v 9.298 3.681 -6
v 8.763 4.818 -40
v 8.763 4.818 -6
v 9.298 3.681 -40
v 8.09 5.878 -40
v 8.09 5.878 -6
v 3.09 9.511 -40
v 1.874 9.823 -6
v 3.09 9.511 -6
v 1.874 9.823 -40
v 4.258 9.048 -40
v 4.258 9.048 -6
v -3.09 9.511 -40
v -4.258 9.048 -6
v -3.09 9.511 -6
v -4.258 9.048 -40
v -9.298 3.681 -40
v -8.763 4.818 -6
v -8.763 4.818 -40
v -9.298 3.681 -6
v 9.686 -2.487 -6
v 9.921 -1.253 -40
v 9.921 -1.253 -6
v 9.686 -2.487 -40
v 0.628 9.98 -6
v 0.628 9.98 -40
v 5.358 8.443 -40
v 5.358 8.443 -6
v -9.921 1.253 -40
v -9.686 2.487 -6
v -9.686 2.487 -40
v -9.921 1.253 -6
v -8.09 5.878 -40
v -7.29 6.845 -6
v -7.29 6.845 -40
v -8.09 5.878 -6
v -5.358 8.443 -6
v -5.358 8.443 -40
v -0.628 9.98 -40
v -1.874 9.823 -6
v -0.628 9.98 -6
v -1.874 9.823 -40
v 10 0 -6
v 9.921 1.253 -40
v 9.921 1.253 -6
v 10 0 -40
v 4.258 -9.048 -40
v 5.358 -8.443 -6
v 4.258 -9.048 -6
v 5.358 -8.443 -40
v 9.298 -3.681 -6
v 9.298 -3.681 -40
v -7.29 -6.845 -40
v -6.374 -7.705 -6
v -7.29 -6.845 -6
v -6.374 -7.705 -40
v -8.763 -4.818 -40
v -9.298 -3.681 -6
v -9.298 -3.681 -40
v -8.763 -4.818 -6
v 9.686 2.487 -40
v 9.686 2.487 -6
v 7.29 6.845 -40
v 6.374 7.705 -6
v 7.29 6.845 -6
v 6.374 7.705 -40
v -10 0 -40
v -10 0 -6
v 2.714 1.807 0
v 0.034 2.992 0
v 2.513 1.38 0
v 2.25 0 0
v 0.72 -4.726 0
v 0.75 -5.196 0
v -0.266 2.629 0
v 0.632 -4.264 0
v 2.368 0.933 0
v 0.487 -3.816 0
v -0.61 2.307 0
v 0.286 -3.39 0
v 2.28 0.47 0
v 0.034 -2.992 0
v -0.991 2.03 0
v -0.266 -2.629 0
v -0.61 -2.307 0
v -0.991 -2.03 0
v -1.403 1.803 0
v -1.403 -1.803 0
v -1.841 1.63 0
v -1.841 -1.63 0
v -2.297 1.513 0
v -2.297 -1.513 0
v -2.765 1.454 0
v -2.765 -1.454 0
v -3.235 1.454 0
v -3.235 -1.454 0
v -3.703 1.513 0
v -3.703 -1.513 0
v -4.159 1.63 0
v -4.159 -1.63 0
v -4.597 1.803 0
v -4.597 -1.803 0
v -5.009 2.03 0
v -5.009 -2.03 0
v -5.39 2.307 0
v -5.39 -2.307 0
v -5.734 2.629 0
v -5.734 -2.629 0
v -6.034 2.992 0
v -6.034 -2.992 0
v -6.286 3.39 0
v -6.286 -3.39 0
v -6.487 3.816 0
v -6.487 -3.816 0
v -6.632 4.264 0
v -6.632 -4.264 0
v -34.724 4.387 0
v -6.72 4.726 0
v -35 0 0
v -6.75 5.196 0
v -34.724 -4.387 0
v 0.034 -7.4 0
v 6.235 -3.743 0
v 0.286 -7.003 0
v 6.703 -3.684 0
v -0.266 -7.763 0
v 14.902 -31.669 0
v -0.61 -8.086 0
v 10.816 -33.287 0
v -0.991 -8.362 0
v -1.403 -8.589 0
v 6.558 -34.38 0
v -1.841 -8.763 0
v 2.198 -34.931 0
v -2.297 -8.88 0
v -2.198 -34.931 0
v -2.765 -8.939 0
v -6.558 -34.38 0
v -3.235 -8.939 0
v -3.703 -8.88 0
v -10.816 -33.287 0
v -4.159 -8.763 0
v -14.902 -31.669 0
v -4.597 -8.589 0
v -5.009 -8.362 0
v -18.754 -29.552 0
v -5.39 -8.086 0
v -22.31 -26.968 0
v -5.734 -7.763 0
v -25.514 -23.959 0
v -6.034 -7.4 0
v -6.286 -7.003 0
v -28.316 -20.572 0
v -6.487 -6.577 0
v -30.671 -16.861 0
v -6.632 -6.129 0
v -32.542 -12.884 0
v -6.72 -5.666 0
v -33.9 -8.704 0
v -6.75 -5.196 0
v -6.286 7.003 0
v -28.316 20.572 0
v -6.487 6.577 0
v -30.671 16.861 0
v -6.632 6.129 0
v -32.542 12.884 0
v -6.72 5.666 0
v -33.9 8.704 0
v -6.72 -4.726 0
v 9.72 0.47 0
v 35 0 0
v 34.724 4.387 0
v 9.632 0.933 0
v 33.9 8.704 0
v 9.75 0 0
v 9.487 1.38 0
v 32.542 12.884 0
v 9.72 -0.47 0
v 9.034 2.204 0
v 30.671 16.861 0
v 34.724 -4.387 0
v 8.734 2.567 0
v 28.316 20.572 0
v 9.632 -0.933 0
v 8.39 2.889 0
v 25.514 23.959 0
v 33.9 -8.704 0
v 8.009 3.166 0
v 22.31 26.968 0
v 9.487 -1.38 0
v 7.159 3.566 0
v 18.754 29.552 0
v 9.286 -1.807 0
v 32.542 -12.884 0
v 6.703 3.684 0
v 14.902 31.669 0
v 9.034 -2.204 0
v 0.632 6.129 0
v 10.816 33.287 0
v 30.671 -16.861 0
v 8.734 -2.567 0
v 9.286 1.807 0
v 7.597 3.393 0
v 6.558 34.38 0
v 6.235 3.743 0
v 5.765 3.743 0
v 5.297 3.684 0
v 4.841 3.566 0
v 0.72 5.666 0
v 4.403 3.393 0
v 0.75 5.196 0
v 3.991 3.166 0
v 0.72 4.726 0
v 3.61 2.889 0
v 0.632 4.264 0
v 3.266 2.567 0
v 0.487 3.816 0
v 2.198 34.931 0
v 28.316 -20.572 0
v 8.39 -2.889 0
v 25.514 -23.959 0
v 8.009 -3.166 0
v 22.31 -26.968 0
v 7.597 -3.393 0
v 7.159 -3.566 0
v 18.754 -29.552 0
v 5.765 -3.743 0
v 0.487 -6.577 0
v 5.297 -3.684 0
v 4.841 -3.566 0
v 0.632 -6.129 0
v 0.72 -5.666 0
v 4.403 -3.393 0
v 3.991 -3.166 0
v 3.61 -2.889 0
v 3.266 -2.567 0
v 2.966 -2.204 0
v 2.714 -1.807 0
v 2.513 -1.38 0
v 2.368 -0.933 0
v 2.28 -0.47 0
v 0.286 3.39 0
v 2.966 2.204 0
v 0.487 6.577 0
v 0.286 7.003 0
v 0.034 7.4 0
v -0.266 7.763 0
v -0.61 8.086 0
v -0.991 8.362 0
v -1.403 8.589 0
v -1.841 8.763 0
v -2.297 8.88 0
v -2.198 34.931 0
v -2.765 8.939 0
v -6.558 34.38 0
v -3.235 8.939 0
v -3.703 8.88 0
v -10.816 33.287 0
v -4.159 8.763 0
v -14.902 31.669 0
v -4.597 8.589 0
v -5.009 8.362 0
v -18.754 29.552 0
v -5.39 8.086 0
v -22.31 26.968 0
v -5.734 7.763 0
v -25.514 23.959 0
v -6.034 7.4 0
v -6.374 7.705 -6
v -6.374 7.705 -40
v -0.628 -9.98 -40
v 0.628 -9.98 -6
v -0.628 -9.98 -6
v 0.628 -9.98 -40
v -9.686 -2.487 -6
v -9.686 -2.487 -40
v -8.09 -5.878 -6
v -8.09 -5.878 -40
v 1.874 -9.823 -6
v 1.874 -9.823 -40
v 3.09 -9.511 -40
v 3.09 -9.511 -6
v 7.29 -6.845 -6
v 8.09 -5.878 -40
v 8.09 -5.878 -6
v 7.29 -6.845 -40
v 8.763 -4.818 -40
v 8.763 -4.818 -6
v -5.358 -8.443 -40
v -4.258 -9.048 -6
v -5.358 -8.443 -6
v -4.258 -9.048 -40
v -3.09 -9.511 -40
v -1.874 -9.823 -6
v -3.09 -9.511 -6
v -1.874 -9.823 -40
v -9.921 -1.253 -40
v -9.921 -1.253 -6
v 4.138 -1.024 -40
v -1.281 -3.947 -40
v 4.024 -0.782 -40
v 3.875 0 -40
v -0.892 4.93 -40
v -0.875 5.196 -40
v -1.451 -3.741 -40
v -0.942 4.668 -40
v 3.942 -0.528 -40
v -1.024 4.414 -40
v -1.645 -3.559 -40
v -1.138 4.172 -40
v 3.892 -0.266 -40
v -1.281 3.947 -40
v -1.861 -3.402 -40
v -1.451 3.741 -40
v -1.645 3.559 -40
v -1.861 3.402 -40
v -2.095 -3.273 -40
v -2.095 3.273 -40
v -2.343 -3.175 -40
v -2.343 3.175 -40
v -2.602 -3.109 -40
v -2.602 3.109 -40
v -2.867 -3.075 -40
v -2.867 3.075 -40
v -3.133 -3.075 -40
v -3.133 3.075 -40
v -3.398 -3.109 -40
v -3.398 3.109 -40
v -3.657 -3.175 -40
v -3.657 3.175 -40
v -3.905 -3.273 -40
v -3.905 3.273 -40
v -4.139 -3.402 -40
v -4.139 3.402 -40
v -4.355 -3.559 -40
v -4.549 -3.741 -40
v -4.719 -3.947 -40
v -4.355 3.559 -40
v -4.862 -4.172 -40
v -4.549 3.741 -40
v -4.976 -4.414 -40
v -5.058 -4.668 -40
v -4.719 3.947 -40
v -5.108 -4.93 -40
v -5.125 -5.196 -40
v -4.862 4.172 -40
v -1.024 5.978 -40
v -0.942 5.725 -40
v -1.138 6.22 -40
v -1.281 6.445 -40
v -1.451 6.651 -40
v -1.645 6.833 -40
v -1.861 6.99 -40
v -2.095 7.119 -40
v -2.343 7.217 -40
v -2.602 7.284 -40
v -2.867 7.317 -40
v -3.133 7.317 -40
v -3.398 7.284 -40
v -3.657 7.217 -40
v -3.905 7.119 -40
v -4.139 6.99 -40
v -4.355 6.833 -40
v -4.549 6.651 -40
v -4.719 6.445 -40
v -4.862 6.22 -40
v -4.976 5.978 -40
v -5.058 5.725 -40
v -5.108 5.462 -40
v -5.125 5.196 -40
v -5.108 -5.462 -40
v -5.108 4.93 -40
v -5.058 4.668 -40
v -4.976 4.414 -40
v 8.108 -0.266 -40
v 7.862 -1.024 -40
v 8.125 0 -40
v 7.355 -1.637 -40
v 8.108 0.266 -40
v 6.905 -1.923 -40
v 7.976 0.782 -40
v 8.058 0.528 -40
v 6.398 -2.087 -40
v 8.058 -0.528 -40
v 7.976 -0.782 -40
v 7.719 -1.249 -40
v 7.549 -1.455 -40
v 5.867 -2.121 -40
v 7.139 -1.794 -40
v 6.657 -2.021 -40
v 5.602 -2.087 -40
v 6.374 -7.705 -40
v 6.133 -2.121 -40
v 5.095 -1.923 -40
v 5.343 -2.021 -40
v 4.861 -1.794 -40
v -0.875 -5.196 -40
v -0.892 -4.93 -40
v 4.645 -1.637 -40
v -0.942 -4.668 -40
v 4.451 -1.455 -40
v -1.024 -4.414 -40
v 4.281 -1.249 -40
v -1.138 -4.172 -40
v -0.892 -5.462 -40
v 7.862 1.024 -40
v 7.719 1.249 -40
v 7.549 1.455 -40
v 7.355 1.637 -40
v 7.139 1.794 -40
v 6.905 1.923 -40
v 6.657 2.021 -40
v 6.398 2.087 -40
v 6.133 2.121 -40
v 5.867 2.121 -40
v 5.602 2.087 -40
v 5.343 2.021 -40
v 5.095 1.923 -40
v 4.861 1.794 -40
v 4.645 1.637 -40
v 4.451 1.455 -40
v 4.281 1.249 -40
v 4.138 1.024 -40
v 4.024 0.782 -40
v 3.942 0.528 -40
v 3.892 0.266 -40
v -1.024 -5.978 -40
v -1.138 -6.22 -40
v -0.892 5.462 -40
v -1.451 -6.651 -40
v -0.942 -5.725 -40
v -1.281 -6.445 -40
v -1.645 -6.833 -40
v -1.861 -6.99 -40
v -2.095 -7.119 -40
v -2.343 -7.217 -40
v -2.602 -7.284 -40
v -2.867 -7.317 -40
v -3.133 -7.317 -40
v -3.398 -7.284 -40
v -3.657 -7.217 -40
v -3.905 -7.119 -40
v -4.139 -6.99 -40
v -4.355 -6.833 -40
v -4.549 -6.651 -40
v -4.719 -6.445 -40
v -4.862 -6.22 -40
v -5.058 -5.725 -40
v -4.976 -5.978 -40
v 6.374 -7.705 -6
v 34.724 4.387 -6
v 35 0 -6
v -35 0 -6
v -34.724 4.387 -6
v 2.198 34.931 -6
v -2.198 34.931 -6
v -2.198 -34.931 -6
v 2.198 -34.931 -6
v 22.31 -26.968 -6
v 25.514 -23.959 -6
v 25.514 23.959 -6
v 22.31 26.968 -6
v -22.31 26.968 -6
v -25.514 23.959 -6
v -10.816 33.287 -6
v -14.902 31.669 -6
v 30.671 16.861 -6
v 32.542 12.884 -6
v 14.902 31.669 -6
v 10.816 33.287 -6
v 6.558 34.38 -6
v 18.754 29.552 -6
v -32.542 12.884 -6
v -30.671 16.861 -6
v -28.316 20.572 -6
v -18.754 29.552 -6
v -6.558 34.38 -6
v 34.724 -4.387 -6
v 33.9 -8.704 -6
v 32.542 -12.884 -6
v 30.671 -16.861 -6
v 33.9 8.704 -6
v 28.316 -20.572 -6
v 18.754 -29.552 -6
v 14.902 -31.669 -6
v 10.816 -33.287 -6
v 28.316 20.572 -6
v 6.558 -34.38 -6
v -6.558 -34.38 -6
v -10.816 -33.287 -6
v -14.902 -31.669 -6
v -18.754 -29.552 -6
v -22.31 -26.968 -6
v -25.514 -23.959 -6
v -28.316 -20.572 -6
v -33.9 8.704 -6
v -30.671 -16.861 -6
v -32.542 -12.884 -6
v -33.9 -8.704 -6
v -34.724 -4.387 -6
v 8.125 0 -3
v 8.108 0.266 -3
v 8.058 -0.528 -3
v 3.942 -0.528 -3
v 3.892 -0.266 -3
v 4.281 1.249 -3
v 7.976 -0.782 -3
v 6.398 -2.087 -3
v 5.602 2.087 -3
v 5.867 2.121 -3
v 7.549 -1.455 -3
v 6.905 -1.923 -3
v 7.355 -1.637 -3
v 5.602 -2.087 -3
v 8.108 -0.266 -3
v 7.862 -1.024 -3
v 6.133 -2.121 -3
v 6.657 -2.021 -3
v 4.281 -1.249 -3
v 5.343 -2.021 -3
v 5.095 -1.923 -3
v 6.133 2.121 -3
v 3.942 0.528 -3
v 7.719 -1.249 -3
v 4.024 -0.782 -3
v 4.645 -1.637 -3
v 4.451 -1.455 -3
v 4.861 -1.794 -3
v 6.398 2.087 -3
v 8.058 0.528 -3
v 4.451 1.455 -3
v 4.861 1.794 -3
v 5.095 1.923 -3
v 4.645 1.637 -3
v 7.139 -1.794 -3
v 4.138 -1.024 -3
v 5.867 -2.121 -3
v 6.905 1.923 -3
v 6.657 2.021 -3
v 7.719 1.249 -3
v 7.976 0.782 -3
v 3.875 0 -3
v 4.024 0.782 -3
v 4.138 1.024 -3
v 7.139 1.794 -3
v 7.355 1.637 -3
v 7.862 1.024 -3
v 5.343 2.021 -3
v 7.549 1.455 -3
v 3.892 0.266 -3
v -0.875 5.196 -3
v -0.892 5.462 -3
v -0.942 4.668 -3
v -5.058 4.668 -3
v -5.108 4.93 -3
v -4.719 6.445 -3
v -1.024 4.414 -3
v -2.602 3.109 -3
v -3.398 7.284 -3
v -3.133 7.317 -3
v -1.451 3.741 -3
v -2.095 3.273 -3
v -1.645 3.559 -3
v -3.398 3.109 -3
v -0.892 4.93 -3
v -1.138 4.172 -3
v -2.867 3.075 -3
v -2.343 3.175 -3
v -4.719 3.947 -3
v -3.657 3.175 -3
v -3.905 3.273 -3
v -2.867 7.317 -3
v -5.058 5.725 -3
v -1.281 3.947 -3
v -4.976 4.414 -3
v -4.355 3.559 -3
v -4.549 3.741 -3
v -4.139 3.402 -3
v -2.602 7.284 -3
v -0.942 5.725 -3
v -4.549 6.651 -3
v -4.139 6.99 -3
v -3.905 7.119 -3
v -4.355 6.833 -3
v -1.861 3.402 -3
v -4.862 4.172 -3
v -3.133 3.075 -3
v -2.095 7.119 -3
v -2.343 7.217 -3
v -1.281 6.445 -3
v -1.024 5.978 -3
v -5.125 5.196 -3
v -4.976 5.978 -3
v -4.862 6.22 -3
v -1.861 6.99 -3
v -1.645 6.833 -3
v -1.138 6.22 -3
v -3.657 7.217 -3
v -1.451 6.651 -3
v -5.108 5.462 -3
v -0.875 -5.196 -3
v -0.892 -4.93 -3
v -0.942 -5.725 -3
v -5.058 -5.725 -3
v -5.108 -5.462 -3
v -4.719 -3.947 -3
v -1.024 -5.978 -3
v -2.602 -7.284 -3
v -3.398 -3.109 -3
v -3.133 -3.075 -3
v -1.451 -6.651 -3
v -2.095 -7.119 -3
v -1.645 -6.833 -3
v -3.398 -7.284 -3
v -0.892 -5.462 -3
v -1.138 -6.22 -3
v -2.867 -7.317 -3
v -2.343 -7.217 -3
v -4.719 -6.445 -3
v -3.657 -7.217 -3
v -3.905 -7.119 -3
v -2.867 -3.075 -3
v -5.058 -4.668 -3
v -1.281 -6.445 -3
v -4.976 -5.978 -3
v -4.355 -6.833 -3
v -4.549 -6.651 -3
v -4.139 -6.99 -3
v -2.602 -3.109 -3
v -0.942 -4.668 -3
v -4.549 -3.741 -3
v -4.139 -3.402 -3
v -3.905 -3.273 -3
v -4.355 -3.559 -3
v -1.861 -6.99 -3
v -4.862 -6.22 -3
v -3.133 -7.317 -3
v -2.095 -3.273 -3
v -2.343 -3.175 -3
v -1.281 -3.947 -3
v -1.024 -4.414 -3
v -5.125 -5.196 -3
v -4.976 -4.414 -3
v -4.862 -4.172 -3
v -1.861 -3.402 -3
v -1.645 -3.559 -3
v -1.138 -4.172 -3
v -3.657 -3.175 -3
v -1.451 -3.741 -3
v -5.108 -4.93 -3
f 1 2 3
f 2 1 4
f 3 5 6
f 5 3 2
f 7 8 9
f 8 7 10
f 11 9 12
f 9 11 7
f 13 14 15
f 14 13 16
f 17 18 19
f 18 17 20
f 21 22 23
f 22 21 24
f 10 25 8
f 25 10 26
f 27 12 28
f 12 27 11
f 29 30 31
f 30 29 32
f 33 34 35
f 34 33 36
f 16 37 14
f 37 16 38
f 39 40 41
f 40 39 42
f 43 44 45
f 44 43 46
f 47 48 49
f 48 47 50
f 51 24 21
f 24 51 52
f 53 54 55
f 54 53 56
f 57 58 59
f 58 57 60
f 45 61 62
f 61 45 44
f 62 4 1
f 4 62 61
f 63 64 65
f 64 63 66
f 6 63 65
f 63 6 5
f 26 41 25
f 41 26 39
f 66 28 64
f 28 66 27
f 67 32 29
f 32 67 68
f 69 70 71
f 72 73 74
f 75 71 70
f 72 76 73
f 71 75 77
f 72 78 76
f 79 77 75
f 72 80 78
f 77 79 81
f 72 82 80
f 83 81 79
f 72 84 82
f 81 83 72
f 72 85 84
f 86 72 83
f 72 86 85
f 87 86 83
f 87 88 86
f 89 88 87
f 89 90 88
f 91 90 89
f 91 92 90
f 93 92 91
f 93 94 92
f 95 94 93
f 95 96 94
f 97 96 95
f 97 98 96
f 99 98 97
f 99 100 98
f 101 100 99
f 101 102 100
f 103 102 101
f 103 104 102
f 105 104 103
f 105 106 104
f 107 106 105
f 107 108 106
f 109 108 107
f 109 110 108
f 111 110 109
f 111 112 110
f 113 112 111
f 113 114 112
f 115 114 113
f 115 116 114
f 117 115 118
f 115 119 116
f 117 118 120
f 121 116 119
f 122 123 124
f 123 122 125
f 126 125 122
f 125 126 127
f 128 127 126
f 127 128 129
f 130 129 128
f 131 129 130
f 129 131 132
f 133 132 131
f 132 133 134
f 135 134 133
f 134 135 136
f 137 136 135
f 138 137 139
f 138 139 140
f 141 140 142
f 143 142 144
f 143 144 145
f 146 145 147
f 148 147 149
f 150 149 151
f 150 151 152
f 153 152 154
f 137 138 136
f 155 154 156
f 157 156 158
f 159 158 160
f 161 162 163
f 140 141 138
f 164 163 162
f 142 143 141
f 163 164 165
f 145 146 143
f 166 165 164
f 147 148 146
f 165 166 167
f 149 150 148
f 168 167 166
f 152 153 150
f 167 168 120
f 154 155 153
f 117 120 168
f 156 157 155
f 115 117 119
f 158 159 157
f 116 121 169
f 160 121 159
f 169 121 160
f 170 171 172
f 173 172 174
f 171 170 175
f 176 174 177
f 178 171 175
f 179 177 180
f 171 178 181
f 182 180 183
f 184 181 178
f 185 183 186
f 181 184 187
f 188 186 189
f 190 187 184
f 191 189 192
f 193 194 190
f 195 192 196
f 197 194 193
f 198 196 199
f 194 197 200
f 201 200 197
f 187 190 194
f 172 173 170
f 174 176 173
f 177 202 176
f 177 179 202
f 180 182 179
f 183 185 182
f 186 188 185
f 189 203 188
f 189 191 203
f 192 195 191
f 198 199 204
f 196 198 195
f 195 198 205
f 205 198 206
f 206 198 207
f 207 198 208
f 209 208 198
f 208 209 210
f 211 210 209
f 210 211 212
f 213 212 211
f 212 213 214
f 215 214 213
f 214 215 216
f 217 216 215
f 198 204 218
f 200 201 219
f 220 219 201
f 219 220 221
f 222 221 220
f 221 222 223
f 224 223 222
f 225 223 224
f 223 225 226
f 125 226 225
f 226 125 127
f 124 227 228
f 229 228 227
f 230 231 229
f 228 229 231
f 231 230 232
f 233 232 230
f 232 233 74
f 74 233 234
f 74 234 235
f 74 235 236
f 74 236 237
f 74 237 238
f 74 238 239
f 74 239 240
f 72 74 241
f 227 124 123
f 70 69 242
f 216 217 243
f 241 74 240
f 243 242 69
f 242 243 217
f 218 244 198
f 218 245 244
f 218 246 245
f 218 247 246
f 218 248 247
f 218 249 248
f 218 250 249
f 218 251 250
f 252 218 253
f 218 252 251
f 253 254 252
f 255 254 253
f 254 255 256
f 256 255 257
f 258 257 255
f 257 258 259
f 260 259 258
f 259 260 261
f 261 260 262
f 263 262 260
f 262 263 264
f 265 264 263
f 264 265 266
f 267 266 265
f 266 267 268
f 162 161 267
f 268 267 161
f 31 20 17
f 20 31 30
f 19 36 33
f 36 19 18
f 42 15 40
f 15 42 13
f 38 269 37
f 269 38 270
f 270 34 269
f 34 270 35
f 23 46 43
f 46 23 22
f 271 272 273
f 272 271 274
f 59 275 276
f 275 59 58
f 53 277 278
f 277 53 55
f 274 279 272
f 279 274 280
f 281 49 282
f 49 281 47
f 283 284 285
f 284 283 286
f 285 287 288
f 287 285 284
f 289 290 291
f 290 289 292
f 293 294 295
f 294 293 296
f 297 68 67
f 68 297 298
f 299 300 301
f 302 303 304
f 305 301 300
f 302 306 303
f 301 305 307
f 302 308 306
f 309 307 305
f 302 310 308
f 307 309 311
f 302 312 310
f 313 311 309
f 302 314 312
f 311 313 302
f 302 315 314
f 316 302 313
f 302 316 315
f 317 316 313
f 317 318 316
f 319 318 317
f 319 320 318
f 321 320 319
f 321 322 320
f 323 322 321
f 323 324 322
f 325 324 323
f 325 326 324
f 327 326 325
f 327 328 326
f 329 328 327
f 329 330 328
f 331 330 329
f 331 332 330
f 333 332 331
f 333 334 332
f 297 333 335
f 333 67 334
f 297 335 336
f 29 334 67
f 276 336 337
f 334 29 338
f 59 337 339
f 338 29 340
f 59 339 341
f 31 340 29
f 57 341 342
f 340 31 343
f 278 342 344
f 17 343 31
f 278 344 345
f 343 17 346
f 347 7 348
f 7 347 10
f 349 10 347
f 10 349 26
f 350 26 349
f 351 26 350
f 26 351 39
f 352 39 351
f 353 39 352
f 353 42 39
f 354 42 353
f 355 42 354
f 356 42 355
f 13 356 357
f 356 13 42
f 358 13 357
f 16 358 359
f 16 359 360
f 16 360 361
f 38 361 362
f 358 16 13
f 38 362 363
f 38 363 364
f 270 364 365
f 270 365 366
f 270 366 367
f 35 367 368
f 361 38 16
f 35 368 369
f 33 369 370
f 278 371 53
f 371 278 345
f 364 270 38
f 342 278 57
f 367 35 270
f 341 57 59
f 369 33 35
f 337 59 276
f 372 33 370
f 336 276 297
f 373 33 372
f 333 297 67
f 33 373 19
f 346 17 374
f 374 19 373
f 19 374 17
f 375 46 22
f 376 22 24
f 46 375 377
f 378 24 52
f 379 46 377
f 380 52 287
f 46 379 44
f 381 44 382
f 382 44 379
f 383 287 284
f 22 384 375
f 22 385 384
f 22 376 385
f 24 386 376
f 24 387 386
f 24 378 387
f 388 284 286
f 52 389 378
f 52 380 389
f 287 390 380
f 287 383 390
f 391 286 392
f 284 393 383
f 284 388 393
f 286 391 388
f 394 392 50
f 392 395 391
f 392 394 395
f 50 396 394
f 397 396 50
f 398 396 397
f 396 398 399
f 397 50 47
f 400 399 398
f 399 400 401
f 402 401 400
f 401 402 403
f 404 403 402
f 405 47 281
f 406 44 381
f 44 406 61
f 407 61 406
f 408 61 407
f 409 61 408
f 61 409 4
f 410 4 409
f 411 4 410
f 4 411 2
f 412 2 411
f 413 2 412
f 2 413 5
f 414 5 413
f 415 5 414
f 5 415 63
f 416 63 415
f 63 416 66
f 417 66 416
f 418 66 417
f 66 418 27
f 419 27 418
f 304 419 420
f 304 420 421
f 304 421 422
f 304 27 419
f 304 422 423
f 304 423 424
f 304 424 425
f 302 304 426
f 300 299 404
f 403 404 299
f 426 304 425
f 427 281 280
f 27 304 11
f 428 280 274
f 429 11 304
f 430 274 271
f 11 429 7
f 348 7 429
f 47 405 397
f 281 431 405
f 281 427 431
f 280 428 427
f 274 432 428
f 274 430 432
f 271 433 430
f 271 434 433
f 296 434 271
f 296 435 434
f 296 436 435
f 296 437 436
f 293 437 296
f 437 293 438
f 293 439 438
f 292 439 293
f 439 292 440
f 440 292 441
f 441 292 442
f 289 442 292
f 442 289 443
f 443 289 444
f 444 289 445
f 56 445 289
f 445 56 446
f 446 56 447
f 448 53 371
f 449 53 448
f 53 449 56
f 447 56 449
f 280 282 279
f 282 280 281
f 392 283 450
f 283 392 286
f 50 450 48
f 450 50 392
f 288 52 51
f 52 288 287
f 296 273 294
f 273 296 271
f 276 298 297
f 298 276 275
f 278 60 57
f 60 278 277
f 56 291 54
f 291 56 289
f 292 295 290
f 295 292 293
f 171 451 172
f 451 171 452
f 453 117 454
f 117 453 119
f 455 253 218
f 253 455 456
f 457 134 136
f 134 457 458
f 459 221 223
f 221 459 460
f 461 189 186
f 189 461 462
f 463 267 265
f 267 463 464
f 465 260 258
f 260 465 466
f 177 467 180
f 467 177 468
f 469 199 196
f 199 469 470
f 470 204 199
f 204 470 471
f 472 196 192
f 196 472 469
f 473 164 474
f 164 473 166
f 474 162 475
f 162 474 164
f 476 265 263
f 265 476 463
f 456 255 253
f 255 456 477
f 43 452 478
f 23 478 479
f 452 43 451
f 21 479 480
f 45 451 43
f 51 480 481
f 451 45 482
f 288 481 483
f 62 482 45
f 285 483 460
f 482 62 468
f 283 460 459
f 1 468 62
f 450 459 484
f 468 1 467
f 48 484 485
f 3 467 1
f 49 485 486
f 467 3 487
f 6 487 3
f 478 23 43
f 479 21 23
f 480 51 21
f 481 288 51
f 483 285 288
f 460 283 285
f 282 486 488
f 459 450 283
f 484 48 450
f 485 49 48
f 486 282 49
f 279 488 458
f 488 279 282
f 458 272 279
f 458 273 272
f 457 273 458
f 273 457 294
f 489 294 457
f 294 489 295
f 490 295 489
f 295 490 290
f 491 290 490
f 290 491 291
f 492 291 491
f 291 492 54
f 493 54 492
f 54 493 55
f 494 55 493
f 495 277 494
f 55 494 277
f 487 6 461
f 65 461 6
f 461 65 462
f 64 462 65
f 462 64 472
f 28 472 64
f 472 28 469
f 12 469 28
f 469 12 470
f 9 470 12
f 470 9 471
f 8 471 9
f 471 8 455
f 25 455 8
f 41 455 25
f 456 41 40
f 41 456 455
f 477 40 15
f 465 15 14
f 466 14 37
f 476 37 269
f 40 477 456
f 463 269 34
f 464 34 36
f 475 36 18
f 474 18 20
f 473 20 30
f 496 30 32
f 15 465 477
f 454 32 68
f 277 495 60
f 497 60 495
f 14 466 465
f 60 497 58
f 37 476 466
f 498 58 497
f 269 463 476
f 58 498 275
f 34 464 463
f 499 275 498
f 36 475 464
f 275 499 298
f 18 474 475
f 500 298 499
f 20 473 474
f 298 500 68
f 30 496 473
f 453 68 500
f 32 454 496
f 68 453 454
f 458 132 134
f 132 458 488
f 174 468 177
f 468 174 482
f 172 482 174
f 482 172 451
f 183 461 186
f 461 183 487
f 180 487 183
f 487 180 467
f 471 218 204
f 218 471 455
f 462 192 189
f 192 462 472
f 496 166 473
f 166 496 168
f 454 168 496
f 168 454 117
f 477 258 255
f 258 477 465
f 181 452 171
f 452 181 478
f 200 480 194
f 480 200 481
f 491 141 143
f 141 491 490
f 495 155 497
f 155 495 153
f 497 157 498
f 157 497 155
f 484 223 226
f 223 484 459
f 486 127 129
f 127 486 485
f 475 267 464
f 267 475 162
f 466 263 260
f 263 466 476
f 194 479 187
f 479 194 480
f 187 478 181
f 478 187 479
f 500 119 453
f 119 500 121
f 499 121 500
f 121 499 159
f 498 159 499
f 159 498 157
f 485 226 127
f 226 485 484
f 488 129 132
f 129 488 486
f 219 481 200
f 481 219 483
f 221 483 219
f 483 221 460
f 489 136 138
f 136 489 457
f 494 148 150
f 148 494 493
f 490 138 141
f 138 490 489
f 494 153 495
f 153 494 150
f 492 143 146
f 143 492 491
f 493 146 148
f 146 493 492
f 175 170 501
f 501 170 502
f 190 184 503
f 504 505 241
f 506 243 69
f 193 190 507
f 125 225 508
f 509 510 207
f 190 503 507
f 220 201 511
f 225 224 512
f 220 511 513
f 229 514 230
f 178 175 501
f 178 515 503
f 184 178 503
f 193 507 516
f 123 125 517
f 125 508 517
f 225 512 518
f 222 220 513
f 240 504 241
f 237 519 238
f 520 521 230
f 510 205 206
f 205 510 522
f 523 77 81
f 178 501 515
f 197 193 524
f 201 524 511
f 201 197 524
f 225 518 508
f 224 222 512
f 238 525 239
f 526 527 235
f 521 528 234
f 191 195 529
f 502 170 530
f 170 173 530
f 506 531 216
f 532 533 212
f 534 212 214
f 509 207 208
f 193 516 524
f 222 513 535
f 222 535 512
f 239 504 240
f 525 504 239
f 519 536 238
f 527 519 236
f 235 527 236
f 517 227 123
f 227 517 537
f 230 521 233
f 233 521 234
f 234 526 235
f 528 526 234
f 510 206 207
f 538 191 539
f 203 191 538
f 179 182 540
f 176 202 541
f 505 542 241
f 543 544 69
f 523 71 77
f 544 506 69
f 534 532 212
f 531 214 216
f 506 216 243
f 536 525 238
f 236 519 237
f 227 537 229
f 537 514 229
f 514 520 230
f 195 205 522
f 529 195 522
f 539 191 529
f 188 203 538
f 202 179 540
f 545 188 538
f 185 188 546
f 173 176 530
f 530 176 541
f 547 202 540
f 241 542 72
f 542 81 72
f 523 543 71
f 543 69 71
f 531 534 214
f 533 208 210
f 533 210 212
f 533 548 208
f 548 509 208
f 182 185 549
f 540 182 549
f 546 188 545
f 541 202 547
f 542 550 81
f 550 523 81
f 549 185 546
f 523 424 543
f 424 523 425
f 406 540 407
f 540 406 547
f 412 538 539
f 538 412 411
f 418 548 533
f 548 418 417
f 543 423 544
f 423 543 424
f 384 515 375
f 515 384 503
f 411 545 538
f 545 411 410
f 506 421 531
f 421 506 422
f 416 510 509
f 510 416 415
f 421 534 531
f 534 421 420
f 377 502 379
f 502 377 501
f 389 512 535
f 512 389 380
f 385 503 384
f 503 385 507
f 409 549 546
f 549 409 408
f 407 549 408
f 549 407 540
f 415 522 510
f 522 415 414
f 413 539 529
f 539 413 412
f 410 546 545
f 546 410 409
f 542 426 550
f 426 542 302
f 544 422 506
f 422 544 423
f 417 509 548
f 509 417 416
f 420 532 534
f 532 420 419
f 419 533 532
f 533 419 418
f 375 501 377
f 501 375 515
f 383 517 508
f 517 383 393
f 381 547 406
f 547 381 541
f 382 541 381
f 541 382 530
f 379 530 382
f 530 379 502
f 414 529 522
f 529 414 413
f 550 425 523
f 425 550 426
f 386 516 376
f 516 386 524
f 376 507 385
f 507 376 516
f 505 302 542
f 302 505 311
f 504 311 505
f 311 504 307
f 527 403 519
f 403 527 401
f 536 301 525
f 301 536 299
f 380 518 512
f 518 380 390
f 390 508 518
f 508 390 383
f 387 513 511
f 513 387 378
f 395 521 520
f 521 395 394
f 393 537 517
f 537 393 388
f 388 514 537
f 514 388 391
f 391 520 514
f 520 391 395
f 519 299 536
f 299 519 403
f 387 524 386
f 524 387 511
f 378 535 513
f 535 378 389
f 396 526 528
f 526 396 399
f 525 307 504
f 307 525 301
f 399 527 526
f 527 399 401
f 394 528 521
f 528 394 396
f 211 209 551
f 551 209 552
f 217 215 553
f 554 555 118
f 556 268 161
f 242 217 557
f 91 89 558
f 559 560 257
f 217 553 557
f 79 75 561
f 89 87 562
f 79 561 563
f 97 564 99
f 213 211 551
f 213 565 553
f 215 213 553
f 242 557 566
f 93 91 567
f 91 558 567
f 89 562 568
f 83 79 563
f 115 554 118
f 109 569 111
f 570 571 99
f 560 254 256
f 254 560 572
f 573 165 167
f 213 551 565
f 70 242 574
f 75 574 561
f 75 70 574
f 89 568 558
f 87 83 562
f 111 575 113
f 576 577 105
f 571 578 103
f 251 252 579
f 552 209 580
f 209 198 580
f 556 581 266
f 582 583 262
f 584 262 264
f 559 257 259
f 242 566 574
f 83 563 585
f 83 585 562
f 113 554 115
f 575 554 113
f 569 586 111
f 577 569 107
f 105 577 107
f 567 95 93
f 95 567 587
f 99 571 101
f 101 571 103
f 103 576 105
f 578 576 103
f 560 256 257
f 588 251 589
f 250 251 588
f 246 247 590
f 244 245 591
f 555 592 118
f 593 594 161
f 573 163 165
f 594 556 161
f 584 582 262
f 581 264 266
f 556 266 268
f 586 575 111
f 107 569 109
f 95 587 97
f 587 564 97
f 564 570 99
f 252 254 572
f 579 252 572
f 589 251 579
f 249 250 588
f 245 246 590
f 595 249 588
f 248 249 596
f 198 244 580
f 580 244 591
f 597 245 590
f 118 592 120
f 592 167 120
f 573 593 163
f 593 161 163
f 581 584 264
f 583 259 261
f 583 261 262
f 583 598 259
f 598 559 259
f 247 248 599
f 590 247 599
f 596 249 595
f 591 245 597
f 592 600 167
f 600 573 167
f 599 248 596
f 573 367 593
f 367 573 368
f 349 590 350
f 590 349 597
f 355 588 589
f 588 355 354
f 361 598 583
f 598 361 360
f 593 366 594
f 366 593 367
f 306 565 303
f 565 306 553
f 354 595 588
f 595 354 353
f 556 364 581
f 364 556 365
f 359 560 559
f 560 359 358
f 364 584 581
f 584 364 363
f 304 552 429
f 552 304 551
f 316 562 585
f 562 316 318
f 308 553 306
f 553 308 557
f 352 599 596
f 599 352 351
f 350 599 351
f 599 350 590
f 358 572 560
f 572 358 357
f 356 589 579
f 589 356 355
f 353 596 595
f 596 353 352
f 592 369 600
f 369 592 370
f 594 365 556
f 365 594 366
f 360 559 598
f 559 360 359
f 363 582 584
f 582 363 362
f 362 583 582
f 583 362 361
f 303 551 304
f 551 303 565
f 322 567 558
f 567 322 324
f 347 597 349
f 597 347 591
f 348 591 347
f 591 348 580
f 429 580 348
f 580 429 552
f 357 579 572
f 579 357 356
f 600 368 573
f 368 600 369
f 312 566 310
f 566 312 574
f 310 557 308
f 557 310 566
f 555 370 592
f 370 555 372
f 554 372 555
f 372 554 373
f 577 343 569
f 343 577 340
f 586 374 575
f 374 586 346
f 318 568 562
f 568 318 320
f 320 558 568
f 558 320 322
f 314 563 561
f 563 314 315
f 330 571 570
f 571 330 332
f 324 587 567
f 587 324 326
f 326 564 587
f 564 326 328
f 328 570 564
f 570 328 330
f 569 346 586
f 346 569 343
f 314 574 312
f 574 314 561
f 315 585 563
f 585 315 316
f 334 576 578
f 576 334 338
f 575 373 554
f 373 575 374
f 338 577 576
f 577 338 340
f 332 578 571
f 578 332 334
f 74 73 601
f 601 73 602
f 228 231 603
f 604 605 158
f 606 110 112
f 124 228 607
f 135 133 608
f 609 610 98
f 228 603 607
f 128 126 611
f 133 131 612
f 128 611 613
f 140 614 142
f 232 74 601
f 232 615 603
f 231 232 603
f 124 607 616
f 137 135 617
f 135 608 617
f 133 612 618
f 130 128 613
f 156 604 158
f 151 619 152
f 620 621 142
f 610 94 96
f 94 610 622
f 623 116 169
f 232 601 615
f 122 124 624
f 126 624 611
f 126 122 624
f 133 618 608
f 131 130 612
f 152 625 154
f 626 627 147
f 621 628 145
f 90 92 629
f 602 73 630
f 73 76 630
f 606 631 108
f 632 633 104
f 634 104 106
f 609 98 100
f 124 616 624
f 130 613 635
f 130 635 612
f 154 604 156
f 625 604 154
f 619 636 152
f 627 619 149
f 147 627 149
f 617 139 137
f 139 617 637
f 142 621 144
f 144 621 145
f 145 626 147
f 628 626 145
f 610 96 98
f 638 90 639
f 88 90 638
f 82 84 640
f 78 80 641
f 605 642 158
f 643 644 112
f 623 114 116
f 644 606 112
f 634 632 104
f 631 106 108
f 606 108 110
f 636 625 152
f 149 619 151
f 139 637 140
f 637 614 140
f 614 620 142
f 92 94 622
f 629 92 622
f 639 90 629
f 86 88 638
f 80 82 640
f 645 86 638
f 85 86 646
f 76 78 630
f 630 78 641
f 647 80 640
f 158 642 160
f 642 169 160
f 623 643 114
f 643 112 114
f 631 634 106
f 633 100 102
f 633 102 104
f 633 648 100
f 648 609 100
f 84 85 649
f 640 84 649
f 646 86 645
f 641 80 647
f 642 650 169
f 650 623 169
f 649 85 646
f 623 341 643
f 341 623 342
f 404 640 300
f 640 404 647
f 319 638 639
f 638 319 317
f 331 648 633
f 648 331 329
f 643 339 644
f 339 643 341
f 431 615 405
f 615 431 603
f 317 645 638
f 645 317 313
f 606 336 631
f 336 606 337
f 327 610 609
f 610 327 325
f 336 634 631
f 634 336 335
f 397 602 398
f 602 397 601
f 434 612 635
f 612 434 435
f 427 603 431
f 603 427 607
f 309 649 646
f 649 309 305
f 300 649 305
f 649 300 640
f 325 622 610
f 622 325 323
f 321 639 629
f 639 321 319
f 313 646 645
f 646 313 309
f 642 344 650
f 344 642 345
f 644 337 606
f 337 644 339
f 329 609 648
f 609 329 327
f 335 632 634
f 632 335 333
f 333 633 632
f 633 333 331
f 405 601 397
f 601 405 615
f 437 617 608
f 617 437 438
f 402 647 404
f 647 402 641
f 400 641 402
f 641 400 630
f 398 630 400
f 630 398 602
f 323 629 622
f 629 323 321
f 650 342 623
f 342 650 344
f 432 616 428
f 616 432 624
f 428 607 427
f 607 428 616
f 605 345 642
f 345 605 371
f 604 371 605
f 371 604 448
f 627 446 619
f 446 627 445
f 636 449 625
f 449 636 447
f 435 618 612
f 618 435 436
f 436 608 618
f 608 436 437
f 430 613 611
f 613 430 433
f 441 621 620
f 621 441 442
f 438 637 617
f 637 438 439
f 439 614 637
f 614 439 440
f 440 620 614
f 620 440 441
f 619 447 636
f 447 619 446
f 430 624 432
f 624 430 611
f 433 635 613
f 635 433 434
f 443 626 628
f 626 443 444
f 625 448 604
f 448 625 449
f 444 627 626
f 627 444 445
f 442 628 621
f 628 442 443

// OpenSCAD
$fn = 50;


difference() {
	union() {
		translate(v = [0, 0, -40.0000000000]) {
			cylinder(h = 40, r = 10.0000000000);
		}
		translate(v = [0, 0, -6.0000000000]) {
			cylinder(h = 6, r = 35.0000000000);
		}
	}
	union() {
		translate(v = [6.0000000000, 0.0000000000, 0]) {
			rotate(a = [0, 0, 0]) {
				difference() {
					union() {
						#translate(v = [0, 0, -40.0000000000]) {
							cylinder(h = 40, r = 2.0000000000);
						}
						#translate(v = [0, 0, -3]) {
							cylinder(h = 3, r = 10.0000000000, r1 = 2.1250000000, r2 = 3.7500000000);
						}
						#translate(v = [0, 0, -40.0000000000]) {
							cylinder(h = 40, r = 2.1250000000);
						}
						#translate(v = [0, 0, -40.0000000000]) {
							cylinder(h = 40, r = 2.0000000000);
						}
					}
					union();
				}
			}
		}
		translate(v = [-3.0000000000, 5.1961524227, 0]) {
			rotate(a = [0, 0, 0]) {
				difference() {
					union() {
						#translate(v = [0, 0, -40.0000000000]) {
							cylinder(h = 40, r = 2.0000000000);
						}
						#translate(v = [0, 0, -3]) {
							cylinder(h = 3, r = 10.0000000000, r1 = 2.1250000000, r2 = 3.7500000000);
						}
						#translate(v = [0, 0, -40.0000000000]) {
							cylinder(h = 40, r = 2.1250000000);
						}
						#translate(v = [0, 0, -40.0000000000]) {
							cylinder(h = 40, r = 2.0000000000);
						}
					}
					union();
				}
			}
		}
		translate(v = [-3.0000000000, -5.1961524227, 0]) {
			rotate(a = [0, 0, 0]) {
				difference() {
					union() {
						#translate(v = [0, 0, -40.0000000000]) {
							cylinder(h = 40, r = 2.0000000000);
						}
						#translate(v = [0, 0, -3]) {
							cylinder(h = 3, r = 10.0000000000, r1 = 2.1250000000, r2 = 3.7500000000);
						}
						#translate(v = [0, 0, -40.0000000000]) {
							cylinder(h = 40, r = 2.1250000000);
						}
						#translate(v = [0, 0, -40.0000000000]) {
							cylinder(h = 40, r = 2.0000000000);
						}
					}
					union();
				}
			}
		}
	}
}
